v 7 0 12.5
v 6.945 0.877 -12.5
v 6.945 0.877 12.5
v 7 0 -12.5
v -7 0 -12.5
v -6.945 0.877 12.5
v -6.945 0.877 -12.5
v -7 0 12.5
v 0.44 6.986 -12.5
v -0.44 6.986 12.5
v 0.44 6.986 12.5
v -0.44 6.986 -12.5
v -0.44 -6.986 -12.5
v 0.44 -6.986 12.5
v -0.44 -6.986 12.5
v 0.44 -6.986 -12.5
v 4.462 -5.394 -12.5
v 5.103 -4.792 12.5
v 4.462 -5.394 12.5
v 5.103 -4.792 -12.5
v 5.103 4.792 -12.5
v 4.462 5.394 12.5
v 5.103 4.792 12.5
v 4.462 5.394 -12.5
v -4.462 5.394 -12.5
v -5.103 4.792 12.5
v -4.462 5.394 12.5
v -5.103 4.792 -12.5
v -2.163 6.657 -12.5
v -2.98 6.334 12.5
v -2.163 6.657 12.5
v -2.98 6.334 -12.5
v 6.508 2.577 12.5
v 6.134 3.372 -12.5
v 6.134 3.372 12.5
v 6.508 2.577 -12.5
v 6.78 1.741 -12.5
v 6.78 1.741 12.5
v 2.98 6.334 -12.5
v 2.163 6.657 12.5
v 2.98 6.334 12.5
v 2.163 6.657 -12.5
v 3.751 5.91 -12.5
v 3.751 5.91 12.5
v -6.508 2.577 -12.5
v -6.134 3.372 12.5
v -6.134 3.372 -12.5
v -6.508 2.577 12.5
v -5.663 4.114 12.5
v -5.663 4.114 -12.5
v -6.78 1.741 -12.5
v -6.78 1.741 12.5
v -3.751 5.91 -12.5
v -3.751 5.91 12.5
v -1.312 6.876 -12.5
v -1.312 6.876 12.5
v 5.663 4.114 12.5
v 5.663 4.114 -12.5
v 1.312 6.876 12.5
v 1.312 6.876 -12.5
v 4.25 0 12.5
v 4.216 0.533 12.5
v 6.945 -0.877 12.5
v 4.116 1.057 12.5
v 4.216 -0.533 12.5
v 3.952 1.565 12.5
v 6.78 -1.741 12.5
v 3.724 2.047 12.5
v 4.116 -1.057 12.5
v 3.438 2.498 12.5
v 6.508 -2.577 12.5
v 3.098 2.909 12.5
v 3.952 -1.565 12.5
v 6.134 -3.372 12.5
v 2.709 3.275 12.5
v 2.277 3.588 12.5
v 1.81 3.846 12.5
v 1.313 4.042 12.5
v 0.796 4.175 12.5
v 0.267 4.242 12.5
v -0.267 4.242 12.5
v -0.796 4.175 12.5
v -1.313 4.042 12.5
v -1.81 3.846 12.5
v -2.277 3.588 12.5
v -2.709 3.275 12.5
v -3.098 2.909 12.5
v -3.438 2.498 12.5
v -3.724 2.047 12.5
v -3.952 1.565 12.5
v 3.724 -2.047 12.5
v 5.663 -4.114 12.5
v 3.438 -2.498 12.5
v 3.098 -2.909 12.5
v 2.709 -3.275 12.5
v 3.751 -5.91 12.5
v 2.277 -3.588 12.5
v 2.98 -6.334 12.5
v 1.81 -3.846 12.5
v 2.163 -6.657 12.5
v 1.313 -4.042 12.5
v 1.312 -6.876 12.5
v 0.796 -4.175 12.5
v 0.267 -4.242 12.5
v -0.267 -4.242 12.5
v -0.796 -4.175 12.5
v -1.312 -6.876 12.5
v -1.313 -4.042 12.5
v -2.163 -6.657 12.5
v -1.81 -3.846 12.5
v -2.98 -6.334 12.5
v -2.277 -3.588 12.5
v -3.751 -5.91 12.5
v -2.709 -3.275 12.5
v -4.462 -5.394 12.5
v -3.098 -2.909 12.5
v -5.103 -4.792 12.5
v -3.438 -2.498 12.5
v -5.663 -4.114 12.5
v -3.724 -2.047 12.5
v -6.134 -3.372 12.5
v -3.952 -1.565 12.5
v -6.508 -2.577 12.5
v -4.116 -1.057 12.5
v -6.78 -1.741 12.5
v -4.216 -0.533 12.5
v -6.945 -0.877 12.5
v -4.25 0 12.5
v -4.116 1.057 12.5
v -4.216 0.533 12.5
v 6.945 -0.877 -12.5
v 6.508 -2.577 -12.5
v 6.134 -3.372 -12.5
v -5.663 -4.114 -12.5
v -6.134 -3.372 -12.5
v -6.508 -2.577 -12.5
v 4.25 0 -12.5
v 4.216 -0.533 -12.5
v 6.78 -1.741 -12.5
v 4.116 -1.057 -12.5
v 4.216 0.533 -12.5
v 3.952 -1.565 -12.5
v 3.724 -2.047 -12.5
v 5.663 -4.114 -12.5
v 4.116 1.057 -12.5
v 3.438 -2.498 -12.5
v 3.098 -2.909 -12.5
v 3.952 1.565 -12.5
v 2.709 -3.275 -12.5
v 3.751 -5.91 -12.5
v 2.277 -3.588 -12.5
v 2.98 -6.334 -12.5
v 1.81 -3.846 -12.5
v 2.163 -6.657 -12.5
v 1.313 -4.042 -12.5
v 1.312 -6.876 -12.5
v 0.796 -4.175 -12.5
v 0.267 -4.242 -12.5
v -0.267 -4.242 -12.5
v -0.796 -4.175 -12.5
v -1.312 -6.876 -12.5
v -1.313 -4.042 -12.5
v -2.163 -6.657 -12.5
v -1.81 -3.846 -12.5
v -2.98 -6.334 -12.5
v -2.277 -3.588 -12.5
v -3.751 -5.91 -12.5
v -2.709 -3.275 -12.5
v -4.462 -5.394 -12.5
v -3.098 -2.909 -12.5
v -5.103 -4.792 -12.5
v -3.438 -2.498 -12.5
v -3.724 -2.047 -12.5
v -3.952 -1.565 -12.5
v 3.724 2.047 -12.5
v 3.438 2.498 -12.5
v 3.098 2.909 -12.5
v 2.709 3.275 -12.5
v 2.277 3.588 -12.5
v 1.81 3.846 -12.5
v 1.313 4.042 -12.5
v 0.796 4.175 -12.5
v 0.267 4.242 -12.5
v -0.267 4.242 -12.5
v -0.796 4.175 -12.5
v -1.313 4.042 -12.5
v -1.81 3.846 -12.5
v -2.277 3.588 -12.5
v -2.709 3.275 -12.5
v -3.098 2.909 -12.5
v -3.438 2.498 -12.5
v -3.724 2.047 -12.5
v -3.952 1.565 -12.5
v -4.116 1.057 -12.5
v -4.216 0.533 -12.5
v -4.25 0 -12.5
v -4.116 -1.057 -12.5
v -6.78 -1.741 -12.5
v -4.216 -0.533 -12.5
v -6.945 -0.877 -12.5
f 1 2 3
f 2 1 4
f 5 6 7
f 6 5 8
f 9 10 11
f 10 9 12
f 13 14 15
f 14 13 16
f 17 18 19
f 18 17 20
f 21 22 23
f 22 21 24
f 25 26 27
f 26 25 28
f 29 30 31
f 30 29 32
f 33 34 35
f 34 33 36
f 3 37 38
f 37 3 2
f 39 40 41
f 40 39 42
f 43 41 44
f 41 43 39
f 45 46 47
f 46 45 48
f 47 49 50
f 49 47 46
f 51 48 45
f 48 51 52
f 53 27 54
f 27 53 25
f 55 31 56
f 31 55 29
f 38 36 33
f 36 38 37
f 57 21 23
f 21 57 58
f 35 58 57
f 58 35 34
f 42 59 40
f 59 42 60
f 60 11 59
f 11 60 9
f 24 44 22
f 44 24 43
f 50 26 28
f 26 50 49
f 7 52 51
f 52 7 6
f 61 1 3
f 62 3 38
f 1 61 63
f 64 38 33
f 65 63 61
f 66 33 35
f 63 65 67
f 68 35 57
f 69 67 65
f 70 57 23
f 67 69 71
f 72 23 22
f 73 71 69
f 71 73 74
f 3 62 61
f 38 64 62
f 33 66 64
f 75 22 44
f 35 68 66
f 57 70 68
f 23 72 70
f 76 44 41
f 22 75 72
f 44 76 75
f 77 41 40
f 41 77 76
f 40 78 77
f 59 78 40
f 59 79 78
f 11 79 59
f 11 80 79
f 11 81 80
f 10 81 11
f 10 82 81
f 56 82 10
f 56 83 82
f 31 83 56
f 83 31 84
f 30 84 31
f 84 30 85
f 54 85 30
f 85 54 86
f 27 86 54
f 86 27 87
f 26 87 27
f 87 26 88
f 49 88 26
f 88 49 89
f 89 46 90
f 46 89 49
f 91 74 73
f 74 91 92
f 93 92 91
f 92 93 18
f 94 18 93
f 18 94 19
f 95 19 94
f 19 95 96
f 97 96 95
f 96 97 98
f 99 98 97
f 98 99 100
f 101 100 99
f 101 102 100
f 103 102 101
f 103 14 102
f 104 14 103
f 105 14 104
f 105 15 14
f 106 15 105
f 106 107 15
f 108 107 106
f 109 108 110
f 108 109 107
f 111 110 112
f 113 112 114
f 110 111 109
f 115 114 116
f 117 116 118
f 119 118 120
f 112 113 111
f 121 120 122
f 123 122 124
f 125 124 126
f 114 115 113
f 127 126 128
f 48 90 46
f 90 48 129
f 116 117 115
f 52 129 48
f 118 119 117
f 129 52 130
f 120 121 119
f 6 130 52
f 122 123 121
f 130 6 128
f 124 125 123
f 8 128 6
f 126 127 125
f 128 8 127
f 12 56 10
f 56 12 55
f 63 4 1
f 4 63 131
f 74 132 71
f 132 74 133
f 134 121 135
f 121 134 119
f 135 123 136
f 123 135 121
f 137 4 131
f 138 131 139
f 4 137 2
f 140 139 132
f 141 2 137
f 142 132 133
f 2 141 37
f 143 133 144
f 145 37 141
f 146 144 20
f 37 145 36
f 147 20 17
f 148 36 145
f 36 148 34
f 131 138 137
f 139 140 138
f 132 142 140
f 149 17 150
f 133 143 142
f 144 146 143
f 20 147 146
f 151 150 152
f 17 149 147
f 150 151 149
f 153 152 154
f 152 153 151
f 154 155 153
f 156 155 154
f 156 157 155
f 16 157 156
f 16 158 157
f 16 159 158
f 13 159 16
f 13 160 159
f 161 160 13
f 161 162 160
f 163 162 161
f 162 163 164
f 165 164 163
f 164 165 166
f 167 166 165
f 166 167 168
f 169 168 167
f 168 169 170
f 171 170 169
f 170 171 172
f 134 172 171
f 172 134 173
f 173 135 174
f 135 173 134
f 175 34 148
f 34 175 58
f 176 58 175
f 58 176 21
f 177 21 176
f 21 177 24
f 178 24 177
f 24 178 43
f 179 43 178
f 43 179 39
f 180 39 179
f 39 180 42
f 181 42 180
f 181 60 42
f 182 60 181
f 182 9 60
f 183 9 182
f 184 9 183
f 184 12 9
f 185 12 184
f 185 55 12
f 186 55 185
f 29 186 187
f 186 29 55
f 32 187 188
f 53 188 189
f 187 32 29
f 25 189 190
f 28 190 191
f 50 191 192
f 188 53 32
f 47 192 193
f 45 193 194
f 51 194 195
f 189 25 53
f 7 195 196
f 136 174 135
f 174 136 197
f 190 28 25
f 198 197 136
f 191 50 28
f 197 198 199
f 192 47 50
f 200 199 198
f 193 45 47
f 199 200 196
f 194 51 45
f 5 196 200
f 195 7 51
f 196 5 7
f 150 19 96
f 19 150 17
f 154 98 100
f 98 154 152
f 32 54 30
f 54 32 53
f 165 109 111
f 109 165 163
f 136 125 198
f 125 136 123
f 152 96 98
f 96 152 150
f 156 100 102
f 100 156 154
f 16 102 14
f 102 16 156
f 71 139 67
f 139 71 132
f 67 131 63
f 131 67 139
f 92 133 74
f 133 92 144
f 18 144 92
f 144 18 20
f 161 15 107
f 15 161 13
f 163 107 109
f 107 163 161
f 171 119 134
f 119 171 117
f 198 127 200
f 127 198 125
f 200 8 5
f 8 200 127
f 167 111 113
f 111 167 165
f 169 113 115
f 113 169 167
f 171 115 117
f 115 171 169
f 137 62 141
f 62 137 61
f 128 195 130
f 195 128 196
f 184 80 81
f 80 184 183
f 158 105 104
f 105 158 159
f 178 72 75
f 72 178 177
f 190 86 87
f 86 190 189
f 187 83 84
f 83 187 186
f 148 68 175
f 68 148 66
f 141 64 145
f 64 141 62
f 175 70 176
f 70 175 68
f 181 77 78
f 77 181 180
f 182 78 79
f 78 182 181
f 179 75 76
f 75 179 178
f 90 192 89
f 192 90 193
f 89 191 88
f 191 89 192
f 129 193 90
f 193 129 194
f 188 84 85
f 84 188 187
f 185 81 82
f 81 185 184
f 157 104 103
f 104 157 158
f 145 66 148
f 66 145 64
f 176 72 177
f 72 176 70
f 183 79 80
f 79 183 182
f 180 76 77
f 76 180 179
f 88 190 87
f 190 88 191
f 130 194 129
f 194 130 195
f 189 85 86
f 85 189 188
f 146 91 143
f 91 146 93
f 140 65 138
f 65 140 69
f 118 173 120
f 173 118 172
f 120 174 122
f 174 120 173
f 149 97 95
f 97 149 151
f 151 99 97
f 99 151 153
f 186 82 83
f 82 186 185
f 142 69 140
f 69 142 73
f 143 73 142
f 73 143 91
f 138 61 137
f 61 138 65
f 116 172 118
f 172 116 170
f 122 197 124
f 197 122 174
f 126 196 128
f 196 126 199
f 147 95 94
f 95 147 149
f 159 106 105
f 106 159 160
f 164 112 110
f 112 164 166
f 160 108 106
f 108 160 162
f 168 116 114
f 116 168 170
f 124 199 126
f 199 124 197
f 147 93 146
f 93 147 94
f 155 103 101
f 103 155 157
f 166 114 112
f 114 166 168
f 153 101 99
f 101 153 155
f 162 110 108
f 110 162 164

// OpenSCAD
$fn = 50;


difference() {
	union() {
		translate(v = [0, 0, -12.5000000000]) {
			cylinder(h = 25, r = 7.0000000000);
		}
	}
	union() {
		translate(v = [0, 0, -100.0000000000]) {
			cylinder(h = 200, r = 4.2500000000);
		}
	}
}
